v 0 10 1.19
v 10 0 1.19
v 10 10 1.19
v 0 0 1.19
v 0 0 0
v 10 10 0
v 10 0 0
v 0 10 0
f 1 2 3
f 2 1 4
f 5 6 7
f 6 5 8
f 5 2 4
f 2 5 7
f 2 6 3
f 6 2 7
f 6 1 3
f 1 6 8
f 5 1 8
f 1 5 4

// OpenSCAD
/* Warning, this is a very basic generator with a lot of approximation 
input data : [TFBGA, 7LX, 10x10x1.19mm, 144, , A, C04-00490A]
generated by com.zoubworld.electronics.cad.model3d.Basic
Date : Sun Feb 15 10:50:48 CET 2026
*/

//body
color("black")
translate([0,0,0])
cube([10.0,10.0,1.19], center=false);
